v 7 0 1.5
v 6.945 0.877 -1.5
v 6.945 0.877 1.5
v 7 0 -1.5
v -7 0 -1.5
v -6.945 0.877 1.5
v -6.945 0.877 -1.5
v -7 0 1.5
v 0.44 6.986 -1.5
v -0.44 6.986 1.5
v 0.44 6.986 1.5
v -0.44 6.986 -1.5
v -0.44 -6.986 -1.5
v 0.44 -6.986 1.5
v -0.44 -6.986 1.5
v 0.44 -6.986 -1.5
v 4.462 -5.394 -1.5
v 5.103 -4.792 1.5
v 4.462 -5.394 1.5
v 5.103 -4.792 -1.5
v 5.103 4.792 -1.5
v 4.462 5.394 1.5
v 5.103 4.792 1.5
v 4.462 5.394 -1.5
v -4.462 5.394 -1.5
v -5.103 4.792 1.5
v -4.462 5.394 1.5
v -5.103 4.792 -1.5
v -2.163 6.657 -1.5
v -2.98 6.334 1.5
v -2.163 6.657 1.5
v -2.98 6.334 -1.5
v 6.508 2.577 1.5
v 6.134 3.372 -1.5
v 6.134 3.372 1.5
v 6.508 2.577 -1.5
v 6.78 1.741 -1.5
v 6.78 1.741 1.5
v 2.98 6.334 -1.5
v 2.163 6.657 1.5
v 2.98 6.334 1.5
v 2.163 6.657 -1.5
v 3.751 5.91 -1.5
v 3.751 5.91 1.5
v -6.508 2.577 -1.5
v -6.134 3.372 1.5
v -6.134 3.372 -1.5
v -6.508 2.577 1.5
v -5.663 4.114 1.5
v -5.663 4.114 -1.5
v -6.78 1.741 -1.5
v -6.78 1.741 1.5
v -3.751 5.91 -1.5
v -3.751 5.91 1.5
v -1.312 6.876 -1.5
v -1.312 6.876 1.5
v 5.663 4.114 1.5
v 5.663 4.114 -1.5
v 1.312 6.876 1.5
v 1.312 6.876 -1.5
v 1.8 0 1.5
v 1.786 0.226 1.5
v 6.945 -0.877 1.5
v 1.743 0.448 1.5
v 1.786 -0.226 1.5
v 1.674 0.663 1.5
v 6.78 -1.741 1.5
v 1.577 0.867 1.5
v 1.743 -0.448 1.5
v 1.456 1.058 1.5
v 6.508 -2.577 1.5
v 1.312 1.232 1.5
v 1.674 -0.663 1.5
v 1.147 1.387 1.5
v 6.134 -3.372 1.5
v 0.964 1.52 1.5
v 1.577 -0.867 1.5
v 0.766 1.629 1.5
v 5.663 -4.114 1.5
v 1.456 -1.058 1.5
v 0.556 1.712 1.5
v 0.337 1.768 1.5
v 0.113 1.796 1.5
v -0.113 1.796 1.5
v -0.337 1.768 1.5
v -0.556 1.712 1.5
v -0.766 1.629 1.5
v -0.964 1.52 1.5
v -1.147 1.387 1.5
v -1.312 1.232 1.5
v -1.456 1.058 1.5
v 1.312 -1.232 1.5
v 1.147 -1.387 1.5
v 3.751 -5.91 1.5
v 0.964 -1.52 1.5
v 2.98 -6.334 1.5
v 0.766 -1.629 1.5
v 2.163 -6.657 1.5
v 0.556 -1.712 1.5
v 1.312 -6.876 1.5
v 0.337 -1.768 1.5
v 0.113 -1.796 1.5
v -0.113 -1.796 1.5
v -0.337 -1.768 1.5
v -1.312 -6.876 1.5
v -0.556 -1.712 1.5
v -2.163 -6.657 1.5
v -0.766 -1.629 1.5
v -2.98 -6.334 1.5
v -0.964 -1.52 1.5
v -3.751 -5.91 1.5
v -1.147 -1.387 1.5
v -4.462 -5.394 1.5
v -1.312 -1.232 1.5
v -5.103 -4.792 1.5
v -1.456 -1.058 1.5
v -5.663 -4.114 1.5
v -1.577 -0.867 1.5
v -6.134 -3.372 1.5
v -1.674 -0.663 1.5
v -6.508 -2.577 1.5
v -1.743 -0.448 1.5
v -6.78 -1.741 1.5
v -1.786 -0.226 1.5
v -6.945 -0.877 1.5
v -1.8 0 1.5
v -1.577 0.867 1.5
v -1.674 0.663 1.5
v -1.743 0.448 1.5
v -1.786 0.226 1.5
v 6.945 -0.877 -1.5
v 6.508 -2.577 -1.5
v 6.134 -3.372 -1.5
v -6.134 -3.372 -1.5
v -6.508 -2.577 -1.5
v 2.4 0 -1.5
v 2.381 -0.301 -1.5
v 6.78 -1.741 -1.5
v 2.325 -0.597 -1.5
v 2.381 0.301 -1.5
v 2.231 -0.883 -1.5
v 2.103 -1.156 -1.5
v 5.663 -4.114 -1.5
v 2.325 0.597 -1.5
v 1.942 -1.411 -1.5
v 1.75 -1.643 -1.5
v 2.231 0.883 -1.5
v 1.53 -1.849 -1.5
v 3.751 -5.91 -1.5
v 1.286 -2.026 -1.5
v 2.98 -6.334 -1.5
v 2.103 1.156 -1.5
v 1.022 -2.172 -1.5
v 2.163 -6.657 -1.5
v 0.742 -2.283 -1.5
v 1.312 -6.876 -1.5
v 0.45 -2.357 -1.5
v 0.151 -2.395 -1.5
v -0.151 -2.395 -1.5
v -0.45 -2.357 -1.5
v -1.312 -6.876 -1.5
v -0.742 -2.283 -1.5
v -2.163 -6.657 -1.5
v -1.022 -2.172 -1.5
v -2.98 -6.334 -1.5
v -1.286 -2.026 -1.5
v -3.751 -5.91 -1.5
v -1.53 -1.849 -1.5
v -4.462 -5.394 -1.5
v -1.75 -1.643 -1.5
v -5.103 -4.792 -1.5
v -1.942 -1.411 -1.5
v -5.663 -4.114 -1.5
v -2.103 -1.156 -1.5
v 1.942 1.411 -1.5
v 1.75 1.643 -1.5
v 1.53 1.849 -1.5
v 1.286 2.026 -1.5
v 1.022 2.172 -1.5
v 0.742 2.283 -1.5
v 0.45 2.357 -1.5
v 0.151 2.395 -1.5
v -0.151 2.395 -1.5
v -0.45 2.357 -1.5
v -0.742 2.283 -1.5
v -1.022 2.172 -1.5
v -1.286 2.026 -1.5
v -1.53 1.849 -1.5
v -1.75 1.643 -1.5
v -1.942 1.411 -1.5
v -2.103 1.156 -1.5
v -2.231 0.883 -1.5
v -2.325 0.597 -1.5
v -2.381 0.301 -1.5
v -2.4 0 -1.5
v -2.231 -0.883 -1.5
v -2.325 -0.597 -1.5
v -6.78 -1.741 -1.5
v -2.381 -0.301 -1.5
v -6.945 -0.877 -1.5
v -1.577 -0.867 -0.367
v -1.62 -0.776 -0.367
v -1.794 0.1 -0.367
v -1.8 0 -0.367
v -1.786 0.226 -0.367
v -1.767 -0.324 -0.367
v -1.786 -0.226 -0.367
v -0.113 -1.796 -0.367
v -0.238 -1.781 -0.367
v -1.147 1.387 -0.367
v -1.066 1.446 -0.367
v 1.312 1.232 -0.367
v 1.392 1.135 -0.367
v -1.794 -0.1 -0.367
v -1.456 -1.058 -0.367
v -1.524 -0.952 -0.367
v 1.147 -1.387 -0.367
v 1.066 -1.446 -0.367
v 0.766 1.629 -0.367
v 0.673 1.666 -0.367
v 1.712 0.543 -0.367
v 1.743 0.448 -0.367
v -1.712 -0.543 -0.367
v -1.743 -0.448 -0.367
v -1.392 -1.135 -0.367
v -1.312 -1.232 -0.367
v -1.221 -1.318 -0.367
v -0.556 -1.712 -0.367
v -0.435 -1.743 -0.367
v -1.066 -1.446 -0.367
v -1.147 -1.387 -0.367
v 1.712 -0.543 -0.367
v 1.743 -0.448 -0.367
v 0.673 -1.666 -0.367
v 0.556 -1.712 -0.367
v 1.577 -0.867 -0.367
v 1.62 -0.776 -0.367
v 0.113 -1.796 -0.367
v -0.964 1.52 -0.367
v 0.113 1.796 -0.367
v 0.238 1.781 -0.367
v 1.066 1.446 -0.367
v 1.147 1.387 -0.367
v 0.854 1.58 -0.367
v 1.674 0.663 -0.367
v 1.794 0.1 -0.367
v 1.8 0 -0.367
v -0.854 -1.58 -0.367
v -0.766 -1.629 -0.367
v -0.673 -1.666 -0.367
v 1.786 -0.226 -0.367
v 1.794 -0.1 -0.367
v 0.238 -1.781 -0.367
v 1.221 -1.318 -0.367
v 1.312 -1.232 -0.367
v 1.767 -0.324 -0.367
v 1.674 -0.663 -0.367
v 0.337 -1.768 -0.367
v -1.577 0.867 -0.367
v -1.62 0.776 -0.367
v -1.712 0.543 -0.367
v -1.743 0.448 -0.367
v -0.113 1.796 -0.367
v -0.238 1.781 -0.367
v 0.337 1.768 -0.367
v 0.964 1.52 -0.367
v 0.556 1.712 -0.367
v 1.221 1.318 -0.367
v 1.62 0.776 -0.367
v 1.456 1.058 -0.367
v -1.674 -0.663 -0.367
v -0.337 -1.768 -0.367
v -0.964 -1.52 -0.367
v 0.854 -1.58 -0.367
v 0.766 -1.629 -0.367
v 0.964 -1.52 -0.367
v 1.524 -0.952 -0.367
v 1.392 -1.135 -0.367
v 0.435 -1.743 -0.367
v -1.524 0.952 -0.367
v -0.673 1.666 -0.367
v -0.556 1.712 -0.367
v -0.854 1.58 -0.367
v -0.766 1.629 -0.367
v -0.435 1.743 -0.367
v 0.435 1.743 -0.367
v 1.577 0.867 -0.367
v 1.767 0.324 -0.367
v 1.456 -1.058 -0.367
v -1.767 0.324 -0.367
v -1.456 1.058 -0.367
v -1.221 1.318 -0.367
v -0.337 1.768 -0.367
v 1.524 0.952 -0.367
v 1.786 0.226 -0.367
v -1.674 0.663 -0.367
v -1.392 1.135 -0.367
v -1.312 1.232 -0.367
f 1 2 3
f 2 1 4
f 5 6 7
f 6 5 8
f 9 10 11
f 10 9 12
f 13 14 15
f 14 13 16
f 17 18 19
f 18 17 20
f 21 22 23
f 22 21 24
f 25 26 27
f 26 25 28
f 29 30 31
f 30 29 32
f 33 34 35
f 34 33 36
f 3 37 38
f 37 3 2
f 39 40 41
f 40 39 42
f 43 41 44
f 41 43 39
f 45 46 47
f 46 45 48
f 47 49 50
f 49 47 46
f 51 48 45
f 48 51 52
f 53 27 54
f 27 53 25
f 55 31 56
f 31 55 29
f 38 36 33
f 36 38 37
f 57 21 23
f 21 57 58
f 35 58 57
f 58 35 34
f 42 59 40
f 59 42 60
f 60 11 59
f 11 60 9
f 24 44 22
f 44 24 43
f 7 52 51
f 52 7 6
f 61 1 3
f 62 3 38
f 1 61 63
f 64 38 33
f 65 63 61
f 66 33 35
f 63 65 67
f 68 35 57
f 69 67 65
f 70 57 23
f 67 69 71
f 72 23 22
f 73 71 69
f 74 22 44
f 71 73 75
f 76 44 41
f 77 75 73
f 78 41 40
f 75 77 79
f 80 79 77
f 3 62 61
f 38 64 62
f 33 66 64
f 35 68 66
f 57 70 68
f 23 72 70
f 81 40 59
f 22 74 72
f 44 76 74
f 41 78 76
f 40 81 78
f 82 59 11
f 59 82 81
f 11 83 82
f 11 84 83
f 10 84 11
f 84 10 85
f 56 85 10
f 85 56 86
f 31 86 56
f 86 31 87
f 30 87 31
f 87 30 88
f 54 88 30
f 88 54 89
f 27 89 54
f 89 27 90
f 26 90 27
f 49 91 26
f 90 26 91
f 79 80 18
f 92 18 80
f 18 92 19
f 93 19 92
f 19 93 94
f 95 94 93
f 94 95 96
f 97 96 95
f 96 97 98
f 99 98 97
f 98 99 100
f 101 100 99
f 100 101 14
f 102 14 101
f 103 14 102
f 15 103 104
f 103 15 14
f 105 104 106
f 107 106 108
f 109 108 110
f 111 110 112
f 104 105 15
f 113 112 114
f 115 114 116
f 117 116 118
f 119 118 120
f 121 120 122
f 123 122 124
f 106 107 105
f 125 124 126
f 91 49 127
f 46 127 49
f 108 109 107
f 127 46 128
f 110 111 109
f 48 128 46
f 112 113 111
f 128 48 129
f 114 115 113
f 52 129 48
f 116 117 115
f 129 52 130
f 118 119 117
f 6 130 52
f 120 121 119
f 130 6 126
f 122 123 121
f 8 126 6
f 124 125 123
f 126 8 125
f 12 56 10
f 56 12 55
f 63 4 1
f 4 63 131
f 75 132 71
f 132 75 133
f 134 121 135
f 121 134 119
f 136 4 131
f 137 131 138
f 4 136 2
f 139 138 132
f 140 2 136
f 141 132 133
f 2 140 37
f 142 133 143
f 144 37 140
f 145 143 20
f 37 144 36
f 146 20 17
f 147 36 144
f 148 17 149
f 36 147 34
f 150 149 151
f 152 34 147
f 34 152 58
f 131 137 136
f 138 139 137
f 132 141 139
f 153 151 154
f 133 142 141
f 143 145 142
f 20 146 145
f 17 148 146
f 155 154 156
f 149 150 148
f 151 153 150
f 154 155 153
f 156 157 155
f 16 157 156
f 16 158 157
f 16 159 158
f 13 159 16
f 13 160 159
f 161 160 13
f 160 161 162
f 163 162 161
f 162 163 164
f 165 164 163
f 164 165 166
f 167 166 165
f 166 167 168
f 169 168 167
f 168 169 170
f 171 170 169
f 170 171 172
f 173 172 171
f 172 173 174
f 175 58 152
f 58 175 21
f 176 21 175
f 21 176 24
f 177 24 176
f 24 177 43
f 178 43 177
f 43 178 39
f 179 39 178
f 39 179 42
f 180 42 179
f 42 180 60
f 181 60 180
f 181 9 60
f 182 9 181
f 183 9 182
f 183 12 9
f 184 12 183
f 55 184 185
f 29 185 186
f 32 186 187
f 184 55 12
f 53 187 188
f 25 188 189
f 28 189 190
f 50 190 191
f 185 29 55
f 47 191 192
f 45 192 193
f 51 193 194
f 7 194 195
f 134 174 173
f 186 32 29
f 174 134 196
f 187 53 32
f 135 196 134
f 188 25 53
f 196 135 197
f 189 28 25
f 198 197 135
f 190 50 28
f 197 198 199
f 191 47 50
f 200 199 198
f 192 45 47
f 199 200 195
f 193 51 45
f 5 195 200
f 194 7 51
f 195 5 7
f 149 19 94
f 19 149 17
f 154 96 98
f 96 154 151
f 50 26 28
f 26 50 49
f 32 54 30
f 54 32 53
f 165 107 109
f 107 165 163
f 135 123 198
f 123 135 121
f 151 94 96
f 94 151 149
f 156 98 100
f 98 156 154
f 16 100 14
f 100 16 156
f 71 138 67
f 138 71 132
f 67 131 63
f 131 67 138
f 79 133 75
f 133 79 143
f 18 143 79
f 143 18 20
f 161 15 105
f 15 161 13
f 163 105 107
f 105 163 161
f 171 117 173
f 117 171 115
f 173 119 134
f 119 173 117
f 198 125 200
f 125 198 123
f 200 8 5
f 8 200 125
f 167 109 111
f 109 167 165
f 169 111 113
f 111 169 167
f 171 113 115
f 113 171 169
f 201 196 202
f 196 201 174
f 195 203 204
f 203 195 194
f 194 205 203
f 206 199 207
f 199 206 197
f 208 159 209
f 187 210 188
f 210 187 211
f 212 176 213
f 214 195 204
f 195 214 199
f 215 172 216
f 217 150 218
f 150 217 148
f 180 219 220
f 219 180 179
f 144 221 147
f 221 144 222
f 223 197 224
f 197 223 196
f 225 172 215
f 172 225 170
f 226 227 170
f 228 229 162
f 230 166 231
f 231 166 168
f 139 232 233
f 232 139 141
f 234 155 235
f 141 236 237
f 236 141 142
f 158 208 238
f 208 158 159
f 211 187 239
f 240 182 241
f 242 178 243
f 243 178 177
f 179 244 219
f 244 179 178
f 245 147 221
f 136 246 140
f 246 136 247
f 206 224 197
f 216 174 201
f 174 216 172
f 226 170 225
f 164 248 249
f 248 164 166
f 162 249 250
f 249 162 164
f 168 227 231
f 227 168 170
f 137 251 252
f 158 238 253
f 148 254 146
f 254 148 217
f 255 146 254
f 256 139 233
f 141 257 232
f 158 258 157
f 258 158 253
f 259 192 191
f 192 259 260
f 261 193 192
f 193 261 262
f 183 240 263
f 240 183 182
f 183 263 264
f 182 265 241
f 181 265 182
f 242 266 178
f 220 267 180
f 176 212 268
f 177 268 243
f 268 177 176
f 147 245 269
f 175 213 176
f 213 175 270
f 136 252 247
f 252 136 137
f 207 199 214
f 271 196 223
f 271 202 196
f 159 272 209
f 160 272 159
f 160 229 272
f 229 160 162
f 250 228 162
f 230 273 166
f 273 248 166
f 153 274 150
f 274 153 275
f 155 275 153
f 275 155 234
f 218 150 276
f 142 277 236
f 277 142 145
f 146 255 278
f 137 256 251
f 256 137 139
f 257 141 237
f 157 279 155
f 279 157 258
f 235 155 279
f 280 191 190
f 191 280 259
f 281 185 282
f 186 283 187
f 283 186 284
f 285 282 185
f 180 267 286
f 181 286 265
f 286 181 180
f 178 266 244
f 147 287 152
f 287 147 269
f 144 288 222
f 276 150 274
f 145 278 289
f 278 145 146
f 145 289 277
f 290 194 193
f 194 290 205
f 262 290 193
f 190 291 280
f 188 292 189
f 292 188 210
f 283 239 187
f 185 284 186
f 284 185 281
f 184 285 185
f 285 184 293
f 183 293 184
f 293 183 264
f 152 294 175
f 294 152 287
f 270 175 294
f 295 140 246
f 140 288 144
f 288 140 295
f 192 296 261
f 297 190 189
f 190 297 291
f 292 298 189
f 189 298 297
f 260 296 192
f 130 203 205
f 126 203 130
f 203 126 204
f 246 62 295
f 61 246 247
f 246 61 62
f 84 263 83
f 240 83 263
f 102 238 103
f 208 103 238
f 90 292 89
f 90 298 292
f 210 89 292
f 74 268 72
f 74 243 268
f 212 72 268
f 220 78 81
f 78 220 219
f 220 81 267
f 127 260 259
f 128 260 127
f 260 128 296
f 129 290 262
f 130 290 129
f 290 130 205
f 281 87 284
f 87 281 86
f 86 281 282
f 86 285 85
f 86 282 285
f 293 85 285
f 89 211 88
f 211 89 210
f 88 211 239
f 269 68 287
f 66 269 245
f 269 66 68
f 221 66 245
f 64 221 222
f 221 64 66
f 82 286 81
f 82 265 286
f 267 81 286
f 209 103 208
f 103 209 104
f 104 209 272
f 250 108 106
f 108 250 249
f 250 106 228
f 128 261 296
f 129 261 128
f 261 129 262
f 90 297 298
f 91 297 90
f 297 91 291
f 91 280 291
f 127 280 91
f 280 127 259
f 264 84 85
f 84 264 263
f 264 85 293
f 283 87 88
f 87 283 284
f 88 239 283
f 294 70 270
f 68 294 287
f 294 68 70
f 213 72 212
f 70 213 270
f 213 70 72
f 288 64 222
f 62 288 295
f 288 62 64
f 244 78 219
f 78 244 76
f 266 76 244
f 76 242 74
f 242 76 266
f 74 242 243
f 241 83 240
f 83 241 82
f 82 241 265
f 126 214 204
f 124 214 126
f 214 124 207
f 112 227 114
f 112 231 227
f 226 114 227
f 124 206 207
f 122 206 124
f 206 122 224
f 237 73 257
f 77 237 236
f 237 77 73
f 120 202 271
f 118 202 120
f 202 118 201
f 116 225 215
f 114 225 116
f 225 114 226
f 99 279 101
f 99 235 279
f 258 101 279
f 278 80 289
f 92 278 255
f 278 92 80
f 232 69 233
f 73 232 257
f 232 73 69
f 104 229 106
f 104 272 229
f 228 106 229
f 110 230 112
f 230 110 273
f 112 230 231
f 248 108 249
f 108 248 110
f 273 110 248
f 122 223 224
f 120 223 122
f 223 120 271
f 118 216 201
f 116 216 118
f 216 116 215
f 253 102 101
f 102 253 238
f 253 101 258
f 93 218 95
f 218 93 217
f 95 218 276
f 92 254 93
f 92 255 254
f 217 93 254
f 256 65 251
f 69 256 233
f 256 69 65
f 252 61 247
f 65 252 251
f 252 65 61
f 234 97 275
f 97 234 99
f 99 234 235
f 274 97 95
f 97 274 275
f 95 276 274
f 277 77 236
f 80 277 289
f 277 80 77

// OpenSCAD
$fn = 50;


difference() {
	union() {
		translate(v = [0, 0, -1.5000000000]) {
			cylinder(h = 3, r = 7.0000000000);
		}
		translate(v = [0, 0, -1.5000000000]) {
			cylinder(h = 3, r = 3.0000000000);
		}
	}
	union() {
		translate(v = [0, 0, -1.5000000000]) {
			rotate(a = [0, 180, 0]) {
				difference() {
					union() {
						translate(v = [0, 0, -1.7000000000]) {
							cylinder(h = 1.7000000000, r1 = 1.5000000000, r2 = 2.4000000000);
						}
						translate(v = [0, 0, -3.0000000000]) {
							cylinder(h = 3, r = 1.5000000000);
						}
						translate(v = [0, 0, -3.0000000000]) {
							cylinder(h = 3, r = 1.8000000000);
						}
						translate(v = [0, 0, -3.0000000000]) {
							cylinder(h = 3, r = 1.5000000000);
						}
					}
					union();
				}
			}
		}
		translate(v = [0, 0, -50.0000000000]) {
			cylinder(h = 100, r = 1.5000000000);
		}
	}
}
